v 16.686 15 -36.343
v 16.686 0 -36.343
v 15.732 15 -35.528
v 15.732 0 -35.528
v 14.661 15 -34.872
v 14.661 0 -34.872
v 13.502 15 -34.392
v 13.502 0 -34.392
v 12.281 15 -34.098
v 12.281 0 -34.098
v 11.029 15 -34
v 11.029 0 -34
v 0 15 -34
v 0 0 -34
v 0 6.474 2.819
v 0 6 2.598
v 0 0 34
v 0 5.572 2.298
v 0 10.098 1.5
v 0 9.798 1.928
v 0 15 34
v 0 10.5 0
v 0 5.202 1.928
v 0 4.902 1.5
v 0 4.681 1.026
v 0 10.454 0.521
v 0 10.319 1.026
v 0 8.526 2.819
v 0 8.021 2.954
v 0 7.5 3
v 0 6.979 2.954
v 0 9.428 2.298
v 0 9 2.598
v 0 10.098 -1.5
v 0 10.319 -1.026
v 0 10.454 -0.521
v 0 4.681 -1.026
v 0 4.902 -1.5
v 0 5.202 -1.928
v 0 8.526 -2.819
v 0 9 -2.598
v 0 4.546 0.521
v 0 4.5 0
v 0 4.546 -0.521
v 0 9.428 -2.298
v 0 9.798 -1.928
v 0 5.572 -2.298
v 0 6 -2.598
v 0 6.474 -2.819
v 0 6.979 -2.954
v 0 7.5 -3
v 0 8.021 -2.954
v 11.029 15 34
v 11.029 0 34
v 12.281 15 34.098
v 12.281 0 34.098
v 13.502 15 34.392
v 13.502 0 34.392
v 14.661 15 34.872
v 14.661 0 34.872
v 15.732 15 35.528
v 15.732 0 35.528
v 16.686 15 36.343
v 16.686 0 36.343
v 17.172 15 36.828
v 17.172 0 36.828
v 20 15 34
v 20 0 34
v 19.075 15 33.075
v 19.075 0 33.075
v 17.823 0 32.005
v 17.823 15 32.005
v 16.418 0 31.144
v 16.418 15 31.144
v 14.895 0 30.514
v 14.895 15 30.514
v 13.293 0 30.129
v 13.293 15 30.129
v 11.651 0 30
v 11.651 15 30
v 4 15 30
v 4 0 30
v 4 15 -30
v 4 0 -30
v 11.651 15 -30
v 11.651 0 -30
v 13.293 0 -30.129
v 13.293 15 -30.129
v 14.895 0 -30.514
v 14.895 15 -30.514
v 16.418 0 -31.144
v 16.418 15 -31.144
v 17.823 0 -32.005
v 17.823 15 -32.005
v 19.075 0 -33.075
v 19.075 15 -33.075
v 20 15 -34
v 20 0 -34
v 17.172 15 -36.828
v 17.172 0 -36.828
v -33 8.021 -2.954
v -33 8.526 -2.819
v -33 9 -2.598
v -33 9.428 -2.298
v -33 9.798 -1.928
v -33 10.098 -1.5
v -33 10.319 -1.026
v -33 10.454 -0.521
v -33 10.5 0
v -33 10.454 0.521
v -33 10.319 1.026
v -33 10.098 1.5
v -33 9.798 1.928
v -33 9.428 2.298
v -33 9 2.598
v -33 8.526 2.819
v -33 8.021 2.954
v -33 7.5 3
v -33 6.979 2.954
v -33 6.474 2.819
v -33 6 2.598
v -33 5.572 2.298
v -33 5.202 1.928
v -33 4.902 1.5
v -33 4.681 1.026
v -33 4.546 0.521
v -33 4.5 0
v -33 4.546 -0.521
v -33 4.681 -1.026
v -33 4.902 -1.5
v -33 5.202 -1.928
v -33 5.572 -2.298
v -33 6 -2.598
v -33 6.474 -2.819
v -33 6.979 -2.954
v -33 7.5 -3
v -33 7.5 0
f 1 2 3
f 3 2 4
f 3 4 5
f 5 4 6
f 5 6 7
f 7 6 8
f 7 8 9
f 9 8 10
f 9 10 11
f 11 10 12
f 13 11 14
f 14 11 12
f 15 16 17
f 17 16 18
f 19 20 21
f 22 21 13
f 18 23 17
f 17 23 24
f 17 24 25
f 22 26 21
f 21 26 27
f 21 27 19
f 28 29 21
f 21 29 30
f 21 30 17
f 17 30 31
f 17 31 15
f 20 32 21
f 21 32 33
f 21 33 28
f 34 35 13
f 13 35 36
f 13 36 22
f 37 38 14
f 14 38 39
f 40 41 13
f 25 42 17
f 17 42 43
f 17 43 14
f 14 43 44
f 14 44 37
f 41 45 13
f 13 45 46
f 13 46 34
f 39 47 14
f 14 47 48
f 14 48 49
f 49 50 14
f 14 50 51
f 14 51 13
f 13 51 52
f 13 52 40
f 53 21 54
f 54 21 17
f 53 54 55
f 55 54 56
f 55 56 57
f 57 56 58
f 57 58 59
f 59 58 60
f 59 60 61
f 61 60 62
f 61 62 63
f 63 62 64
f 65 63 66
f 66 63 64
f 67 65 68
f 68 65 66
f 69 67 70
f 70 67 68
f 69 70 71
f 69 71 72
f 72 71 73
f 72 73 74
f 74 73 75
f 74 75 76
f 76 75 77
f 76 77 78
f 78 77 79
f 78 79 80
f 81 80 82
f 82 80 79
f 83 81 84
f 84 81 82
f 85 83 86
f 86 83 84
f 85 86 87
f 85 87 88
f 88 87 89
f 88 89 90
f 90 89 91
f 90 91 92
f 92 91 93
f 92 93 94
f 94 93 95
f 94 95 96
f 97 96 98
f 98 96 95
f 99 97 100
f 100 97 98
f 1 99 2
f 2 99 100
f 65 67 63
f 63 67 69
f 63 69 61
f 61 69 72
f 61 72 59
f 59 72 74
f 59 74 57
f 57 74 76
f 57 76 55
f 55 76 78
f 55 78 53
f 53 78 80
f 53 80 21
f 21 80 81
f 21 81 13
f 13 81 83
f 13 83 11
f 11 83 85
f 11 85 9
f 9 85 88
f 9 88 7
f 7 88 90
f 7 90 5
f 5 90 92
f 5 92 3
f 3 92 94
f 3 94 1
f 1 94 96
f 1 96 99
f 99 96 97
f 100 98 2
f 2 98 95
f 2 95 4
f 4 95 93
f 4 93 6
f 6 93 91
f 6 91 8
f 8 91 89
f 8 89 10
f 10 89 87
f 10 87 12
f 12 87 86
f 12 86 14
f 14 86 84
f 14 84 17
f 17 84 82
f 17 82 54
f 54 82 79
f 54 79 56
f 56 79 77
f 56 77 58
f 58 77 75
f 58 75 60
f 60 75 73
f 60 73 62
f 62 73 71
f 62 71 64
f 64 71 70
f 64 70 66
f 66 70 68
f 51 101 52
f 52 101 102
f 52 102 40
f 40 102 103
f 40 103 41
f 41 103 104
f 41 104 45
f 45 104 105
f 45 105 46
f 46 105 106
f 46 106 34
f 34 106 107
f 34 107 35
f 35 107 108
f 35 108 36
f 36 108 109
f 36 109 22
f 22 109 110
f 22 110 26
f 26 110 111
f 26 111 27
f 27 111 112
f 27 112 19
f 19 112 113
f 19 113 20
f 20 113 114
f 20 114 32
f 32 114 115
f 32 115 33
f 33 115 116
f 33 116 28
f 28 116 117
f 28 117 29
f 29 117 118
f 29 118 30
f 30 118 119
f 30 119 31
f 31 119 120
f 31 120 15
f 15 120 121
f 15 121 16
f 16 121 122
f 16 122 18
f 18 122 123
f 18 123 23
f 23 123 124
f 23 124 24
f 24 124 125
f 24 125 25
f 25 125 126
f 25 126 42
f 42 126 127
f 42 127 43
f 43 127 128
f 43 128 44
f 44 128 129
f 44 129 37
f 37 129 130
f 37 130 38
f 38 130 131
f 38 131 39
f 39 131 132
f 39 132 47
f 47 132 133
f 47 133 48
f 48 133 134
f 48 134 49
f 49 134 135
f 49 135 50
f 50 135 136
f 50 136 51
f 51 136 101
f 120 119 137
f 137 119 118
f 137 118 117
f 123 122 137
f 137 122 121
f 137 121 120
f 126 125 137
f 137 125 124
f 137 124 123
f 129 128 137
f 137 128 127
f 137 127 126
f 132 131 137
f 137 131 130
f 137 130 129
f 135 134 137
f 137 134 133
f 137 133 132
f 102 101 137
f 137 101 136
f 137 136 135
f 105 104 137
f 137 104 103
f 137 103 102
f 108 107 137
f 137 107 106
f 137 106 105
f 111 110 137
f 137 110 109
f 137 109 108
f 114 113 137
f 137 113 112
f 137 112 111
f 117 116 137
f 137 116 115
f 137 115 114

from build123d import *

# Parameters (mm, degrees)
BOSS_EXTRUDE2_DEPTH = 15
SKETCH3_R           = 3
BOSS_EXTRUDE3_DEPTH = 33


with BuildPart() as part:
    # Sketch1 → Boss-Extrude2 (new body)
    with BuildSketch(Plane(origin=(0, 0, 0), x_dir=(1, 0, 0), z_dir=(0, 1, 0))):
        with BuildLine():
            Line((0, 34), (0, 0))
            Line((0, 0), (4, 0))
            Line((4, 0), (4, 30))
            Line((4, 30), (11.650757595, 30))
            ThreePointArc((11.650757595, 30), (15.668933635, 30.799264909), (19.075378798, 33.075378798))
            Line((19.075378798, 33.075378798), (20, 34))
            Line((20, 34), (17.171572875, 36.828427125))
            Line((17.171572875, 36.828427125), (16.686291501, 36.343145751))
            ThreePointArc((16.686291501, 36.343145751), (14.09090471, 34.60896374), (11.029437252, 34))
            Line((11.029437252, 34), (0, 34))
        make_face()
        with BuildLine():
            Line((0, 0), (0, -34))
            Line((0, -34), (11.029437252, -34))
            ThreePointArc((11.029437252, -34), (14.09090471, -34.60896374), (16.686291501, -36.343145751))
            Line((16.686291501, -36.343145751), (17.171572875, -36.828427125))
            Line((17.171572875, -36.828427125), (20, -34))
            Line((20, -34), (19.075378798, -33.075378798))
            ThreePointArc((19.075378798, -33.075378798), (15.668933635, -30.799264909), (11.650757595, -30))
            Line((11.650757595, -30), (4, -30))
            Line((4, -30), (4, 0))
            Line((4, 0), (0, 0))
        make_face()
    extrude(amount=BOSS_EXTRUDE2_DEPTH)

    # Sketch3 → Boss-Extrude3 (add)
    with BuildSketch(Plane.ZY):
        with Locations((0, 7.5)):
            Circle(SKETCH3_R)
    extrude(amount=BOSS_EXTRUDE3_DEPTH)


solid = part.part
